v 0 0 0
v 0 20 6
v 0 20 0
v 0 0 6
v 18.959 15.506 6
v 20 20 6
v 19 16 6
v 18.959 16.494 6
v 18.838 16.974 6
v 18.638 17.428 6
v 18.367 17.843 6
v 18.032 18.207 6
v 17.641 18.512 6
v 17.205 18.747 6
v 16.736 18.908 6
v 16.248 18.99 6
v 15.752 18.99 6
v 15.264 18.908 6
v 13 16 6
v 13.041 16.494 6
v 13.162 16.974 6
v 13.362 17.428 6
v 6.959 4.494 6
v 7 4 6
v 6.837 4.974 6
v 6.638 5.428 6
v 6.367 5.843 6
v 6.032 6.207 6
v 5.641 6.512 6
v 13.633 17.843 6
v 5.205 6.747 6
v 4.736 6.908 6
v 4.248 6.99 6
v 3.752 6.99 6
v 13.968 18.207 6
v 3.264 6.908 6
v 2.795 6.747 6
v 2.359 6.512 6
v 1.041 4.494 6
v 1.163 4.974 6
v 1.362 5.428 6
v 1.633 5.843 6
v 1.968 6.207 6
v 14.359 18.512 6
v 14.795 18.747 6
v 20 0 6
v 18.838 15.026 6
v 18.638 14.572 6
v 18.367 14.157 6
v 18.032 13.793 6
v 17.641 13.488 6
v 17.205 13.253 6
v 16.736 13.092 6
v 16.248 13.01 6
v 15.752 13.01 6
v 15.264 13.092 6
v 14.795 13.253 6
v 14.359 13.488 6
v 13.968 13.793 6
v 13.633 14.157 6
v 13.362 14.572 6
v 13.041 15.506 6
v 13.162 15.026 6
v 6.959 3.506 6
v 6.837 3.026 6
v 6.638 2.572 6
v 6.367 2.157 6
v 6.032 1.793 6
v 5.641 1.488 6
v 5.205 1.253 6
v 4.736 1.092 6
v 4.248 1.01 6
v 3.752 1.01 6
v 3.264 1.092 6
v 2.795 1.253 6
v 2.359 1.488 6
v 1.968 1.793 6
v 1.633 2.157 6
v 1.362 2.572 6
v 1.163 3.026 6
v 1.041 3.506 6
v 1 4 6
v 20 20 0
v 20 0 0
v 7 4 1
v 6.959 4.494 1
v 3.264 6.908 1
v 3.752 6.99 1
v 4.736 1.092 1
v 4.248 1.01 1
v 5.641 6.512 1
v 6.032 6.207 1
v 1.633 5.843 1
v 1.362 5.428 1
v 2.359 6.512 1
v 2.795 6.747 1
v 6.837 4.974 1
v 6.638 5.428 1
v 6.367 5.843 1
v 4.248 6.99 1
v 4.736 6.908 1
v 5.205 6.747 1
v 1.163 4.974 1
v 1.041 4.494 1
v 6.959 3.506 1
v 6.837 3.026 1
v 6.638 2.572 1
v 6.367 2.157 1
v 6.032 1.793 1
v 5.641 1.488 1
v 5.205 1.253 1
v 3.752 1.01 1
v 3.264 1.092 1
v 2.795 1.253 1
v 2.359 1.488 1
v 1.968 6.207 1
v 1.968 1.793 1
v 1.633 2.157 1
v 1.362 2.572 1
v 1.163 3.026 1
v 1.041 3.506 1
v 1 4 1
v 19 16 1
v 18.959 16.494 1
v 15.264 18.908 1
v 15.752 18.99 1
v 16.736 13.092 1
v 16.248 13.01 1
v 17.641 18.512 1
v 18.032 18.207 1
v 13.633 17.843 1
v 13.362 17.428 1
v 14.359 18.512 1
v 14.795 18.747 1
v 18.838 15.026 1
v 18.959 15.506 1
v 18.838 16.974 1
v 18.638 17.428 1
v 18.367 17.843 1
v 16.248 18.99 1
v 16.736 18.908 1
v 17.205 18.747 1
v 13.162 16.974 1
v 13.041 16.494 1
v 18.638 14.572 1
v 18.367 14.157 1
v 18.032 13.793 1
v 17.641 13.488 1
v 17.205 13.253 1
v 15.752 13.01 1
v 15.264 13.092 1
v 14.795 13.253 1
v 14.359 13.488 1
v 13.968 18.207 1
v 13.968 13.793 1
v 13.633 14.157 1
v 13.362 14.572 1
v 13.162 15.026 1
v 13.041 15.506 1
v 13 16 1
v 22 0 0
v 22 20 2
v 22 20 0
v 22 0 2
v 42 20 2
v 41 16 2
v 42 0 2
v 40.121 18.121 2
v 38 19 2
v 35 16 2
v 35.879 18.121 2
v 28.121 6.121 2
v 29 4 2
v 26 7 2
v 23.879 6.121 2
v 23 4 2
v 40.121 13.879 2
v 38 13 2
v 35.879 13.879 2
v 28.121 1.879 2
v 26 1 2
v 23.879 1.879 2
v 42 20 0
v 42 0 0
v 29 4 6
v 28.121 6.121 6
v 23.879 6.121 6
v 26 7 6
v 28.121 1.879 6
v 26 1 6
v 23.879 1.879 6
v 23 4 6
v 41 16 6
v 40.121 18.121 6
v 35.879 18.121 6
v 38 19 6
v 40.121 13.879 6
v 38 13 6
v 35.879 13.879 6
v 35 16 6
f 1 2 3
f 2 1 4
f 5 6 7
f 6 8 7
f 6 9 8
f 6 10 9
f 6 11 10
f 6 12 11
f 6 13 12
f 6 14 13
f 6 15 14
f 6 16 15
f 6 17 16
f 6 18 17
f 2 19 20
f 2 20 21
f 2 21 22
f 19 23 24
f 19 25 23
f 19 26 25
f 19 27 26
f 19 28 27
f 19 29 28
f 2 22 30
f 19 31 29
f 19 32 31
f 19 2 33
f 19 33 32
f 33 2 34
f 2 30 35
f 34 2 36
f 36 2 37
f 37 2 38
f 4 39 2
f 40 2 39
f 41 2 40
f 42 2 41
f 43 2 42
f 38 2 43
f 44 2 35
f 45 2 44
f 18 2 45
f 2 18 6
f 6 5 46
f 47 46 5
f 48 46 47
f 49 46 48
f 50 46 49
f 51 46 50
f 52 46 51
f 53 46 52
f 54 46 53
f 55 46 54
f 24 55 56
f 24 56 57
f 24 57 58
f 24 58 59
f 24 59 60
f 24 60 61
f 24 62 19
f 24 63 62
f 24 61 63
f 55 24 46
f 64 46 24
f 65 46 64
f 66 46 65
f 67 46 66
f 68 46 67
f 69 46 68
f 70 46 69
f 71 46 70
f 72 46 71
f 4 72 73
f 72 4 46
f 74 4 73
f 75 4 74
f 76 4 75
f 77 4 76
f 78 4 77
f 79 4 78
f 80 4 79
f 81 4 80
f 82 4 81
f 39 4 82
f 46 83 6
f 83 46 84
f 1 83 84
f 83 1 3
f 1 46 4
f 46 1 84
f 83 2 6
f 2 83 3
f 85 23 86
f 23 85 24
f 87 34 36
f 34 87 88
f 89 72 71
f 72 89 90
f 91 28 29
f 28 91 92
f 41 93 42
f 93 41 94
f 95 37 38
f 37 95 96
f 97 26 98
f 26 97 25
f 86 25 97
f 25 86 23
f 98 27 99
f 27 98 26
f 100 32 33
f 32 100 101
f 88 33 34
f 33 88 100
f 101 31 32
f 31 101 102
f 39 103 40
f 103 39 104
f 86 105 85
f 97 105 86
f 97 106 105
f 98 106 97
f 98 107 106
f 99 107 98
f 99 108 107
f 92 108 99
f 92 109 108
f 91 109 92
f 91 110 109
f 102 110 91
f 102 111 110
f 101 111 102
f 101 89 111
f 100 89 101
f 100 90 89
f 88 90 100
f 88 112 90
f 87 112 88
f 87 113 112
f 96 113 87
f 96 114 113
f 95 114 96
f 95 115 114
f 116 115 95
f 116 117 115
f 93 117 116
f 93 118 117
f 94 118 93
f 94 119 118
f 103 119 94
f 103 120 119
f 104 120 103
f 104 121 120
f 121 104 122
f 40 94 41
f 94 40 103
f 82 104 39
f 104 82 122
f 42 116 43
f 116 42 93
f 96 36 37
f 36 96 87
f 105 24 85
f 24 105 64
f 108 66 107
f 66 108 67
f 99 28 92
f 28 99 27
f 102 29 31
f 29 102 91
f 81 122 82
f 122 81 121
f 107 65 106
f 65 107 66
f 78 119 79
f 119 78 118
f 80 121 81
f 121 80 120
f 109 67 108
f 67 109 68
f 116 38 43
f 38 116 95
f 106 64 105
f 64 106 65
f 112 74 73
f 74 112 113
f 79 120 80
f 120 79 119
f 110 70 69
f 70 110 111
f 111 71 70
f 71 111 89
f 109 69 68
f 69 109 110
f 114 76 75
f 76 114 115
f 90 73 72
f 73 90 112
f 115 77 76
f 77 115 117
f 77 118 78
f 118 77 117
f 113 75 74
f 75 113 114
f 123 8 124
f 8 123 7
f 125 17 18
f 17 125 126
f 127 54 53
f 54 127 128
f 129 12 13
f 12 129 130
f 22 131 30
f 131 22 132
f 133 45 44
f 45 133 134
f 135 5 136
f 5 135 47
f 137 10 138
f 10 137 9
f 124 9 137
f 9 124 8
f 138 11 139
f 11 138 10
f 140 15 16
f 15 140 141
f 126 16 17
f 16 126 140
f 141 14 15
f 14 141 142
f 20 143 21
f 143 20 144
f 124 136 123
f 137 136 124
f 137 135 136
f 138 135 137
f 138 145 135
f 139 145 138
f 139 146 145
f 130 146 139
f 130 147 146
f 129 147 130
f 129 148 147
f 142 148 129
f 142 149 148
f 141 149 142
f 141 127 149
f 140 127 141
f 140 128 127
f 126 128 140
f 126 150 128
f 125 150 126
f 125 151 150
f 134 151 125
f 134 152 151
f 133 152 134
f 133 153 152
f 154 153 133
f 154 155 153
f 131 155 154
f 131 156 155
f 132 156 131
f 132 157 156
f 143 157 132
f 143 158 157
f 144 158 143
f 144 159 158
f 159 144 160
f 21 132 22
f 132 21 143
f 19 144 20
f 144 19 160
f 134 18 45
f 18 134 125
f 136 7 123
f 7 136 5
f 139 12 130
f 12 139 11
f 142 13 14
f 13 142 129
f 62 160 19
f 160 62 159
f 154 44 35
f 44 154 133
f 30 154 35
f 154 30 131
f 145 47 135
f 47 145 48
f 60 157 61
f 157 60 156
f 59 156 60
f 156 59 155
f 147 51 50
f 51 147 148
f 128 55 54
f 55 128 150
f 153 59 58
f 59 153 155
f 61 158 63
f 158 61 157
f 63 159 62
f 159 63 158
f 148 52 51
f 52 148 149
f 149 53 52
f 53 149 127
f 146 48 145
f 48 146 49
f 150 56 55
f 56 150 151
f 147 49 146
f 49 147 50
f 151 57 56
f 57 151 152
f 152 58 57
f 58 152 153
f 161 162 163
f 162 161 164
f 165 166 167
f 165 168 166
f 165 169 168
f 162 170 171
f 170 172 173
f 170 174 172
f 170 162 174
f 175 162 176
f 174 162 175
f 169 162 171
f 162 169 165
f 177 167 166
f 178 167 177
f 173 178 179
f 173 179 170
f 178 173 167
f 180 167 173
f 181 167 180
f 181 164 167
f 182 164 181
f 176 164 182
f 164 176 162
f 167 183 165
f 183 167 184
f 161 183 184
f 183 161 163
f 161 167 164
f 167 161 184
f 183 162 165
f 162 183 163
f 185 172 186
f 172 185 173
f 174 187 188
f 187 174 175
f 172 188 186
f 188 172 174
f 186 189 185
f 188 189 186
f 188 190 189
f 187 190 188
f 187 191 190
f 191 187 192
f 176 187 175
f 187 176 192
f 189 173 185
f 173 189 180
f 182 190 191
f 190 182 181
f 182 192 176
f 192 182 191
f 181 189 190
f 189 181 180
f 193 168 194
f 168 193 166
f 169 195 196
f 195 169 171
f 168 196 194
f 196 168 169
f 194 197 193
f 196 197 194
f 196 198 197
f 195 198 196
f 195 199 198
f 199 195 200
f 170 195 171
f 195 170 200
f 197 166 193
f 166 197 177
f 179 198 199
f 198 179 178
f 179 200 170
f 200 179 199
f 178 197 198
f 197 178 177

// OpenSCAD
$fa=1;
$fs=.5;

hole_d = 6;
hole_r = hole_d / 2;

part_x = 20;
part_y = 20;
hole_depth = 5;
part_z = hole_depth + 1;

x_offset = hole_r + 1;
y_offset = hole_r + 1;
z_offset = part_z - hole_depth;

female();
translate([part_x + 2, 0, 0]) male();

module female() {
  difference() {
    cube([part_x, part_y, part_z]);
    translate([x_offset, y_offset, z_offset]) cylinder(r=hole_r, h=part_z * 2);
    translate([part_x - x_offset, part_y - y_offset, z_offset]) cylinder(r=hole_r, h=part_z * 2);
  }
}

module male() {
  cube([part_x, part_y, 2]);
  translate([x_offset, y_offset, z_offset]) cylinder(r=hole_r, h=hole_depth, $fn=8);
  translate([part_x - x_offset, part_y - y_offset, z_offset]) cylinder(r=hole_r, h=hole_depth, $fn=8);
}
